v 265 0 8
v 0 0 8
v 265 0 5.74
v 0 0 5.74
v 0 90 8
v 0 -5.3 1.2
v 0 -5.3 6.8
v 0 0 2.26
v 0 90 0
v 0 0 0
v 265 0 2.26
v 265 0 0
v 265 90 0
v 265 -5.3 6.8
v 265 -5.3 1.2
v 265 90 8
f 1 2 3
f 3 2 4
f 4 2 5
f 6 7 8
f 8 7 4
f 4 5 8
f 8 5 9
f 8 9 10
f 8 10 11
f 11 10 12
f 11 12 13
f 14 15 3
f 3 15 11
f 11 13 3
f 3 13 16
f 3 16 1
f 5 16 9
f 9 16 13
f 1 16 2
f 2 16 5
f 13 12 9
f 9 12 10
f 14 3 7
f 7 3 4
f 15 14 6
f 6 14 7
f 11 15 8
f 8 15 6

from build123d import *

# Parameters (mm, degrees)
SKETCH1_W           = 265
SKETCH1_H           = 90
BOSS_EXTRUDE1_DEPTH = 8
BOSS_EXTRUDE3_DEPTH = 265


with BuildPart() as part:
    # Sketch1 → Boss-Extrude1 (new body)
    with BuildSketch(Plane.XY):
        with Locations((132.5, 45)):
            Rectangle(SKETCH1_W, SKETCH1_H)
    extrude(amount=BOSS_EXTRUDE1_DEPTH)

    # Sketch3 → Boss-Extrude3 (add, through all)
    with BuildSketch(Plane.ZY):
        Polygon((2.26, 0), (1.2, -5.3), (6.8, -5.3), (5.74, 0), align=None)
    extrude(amount=-BOSS_EXTRUDE3_DEPTH)


solid = part.part
